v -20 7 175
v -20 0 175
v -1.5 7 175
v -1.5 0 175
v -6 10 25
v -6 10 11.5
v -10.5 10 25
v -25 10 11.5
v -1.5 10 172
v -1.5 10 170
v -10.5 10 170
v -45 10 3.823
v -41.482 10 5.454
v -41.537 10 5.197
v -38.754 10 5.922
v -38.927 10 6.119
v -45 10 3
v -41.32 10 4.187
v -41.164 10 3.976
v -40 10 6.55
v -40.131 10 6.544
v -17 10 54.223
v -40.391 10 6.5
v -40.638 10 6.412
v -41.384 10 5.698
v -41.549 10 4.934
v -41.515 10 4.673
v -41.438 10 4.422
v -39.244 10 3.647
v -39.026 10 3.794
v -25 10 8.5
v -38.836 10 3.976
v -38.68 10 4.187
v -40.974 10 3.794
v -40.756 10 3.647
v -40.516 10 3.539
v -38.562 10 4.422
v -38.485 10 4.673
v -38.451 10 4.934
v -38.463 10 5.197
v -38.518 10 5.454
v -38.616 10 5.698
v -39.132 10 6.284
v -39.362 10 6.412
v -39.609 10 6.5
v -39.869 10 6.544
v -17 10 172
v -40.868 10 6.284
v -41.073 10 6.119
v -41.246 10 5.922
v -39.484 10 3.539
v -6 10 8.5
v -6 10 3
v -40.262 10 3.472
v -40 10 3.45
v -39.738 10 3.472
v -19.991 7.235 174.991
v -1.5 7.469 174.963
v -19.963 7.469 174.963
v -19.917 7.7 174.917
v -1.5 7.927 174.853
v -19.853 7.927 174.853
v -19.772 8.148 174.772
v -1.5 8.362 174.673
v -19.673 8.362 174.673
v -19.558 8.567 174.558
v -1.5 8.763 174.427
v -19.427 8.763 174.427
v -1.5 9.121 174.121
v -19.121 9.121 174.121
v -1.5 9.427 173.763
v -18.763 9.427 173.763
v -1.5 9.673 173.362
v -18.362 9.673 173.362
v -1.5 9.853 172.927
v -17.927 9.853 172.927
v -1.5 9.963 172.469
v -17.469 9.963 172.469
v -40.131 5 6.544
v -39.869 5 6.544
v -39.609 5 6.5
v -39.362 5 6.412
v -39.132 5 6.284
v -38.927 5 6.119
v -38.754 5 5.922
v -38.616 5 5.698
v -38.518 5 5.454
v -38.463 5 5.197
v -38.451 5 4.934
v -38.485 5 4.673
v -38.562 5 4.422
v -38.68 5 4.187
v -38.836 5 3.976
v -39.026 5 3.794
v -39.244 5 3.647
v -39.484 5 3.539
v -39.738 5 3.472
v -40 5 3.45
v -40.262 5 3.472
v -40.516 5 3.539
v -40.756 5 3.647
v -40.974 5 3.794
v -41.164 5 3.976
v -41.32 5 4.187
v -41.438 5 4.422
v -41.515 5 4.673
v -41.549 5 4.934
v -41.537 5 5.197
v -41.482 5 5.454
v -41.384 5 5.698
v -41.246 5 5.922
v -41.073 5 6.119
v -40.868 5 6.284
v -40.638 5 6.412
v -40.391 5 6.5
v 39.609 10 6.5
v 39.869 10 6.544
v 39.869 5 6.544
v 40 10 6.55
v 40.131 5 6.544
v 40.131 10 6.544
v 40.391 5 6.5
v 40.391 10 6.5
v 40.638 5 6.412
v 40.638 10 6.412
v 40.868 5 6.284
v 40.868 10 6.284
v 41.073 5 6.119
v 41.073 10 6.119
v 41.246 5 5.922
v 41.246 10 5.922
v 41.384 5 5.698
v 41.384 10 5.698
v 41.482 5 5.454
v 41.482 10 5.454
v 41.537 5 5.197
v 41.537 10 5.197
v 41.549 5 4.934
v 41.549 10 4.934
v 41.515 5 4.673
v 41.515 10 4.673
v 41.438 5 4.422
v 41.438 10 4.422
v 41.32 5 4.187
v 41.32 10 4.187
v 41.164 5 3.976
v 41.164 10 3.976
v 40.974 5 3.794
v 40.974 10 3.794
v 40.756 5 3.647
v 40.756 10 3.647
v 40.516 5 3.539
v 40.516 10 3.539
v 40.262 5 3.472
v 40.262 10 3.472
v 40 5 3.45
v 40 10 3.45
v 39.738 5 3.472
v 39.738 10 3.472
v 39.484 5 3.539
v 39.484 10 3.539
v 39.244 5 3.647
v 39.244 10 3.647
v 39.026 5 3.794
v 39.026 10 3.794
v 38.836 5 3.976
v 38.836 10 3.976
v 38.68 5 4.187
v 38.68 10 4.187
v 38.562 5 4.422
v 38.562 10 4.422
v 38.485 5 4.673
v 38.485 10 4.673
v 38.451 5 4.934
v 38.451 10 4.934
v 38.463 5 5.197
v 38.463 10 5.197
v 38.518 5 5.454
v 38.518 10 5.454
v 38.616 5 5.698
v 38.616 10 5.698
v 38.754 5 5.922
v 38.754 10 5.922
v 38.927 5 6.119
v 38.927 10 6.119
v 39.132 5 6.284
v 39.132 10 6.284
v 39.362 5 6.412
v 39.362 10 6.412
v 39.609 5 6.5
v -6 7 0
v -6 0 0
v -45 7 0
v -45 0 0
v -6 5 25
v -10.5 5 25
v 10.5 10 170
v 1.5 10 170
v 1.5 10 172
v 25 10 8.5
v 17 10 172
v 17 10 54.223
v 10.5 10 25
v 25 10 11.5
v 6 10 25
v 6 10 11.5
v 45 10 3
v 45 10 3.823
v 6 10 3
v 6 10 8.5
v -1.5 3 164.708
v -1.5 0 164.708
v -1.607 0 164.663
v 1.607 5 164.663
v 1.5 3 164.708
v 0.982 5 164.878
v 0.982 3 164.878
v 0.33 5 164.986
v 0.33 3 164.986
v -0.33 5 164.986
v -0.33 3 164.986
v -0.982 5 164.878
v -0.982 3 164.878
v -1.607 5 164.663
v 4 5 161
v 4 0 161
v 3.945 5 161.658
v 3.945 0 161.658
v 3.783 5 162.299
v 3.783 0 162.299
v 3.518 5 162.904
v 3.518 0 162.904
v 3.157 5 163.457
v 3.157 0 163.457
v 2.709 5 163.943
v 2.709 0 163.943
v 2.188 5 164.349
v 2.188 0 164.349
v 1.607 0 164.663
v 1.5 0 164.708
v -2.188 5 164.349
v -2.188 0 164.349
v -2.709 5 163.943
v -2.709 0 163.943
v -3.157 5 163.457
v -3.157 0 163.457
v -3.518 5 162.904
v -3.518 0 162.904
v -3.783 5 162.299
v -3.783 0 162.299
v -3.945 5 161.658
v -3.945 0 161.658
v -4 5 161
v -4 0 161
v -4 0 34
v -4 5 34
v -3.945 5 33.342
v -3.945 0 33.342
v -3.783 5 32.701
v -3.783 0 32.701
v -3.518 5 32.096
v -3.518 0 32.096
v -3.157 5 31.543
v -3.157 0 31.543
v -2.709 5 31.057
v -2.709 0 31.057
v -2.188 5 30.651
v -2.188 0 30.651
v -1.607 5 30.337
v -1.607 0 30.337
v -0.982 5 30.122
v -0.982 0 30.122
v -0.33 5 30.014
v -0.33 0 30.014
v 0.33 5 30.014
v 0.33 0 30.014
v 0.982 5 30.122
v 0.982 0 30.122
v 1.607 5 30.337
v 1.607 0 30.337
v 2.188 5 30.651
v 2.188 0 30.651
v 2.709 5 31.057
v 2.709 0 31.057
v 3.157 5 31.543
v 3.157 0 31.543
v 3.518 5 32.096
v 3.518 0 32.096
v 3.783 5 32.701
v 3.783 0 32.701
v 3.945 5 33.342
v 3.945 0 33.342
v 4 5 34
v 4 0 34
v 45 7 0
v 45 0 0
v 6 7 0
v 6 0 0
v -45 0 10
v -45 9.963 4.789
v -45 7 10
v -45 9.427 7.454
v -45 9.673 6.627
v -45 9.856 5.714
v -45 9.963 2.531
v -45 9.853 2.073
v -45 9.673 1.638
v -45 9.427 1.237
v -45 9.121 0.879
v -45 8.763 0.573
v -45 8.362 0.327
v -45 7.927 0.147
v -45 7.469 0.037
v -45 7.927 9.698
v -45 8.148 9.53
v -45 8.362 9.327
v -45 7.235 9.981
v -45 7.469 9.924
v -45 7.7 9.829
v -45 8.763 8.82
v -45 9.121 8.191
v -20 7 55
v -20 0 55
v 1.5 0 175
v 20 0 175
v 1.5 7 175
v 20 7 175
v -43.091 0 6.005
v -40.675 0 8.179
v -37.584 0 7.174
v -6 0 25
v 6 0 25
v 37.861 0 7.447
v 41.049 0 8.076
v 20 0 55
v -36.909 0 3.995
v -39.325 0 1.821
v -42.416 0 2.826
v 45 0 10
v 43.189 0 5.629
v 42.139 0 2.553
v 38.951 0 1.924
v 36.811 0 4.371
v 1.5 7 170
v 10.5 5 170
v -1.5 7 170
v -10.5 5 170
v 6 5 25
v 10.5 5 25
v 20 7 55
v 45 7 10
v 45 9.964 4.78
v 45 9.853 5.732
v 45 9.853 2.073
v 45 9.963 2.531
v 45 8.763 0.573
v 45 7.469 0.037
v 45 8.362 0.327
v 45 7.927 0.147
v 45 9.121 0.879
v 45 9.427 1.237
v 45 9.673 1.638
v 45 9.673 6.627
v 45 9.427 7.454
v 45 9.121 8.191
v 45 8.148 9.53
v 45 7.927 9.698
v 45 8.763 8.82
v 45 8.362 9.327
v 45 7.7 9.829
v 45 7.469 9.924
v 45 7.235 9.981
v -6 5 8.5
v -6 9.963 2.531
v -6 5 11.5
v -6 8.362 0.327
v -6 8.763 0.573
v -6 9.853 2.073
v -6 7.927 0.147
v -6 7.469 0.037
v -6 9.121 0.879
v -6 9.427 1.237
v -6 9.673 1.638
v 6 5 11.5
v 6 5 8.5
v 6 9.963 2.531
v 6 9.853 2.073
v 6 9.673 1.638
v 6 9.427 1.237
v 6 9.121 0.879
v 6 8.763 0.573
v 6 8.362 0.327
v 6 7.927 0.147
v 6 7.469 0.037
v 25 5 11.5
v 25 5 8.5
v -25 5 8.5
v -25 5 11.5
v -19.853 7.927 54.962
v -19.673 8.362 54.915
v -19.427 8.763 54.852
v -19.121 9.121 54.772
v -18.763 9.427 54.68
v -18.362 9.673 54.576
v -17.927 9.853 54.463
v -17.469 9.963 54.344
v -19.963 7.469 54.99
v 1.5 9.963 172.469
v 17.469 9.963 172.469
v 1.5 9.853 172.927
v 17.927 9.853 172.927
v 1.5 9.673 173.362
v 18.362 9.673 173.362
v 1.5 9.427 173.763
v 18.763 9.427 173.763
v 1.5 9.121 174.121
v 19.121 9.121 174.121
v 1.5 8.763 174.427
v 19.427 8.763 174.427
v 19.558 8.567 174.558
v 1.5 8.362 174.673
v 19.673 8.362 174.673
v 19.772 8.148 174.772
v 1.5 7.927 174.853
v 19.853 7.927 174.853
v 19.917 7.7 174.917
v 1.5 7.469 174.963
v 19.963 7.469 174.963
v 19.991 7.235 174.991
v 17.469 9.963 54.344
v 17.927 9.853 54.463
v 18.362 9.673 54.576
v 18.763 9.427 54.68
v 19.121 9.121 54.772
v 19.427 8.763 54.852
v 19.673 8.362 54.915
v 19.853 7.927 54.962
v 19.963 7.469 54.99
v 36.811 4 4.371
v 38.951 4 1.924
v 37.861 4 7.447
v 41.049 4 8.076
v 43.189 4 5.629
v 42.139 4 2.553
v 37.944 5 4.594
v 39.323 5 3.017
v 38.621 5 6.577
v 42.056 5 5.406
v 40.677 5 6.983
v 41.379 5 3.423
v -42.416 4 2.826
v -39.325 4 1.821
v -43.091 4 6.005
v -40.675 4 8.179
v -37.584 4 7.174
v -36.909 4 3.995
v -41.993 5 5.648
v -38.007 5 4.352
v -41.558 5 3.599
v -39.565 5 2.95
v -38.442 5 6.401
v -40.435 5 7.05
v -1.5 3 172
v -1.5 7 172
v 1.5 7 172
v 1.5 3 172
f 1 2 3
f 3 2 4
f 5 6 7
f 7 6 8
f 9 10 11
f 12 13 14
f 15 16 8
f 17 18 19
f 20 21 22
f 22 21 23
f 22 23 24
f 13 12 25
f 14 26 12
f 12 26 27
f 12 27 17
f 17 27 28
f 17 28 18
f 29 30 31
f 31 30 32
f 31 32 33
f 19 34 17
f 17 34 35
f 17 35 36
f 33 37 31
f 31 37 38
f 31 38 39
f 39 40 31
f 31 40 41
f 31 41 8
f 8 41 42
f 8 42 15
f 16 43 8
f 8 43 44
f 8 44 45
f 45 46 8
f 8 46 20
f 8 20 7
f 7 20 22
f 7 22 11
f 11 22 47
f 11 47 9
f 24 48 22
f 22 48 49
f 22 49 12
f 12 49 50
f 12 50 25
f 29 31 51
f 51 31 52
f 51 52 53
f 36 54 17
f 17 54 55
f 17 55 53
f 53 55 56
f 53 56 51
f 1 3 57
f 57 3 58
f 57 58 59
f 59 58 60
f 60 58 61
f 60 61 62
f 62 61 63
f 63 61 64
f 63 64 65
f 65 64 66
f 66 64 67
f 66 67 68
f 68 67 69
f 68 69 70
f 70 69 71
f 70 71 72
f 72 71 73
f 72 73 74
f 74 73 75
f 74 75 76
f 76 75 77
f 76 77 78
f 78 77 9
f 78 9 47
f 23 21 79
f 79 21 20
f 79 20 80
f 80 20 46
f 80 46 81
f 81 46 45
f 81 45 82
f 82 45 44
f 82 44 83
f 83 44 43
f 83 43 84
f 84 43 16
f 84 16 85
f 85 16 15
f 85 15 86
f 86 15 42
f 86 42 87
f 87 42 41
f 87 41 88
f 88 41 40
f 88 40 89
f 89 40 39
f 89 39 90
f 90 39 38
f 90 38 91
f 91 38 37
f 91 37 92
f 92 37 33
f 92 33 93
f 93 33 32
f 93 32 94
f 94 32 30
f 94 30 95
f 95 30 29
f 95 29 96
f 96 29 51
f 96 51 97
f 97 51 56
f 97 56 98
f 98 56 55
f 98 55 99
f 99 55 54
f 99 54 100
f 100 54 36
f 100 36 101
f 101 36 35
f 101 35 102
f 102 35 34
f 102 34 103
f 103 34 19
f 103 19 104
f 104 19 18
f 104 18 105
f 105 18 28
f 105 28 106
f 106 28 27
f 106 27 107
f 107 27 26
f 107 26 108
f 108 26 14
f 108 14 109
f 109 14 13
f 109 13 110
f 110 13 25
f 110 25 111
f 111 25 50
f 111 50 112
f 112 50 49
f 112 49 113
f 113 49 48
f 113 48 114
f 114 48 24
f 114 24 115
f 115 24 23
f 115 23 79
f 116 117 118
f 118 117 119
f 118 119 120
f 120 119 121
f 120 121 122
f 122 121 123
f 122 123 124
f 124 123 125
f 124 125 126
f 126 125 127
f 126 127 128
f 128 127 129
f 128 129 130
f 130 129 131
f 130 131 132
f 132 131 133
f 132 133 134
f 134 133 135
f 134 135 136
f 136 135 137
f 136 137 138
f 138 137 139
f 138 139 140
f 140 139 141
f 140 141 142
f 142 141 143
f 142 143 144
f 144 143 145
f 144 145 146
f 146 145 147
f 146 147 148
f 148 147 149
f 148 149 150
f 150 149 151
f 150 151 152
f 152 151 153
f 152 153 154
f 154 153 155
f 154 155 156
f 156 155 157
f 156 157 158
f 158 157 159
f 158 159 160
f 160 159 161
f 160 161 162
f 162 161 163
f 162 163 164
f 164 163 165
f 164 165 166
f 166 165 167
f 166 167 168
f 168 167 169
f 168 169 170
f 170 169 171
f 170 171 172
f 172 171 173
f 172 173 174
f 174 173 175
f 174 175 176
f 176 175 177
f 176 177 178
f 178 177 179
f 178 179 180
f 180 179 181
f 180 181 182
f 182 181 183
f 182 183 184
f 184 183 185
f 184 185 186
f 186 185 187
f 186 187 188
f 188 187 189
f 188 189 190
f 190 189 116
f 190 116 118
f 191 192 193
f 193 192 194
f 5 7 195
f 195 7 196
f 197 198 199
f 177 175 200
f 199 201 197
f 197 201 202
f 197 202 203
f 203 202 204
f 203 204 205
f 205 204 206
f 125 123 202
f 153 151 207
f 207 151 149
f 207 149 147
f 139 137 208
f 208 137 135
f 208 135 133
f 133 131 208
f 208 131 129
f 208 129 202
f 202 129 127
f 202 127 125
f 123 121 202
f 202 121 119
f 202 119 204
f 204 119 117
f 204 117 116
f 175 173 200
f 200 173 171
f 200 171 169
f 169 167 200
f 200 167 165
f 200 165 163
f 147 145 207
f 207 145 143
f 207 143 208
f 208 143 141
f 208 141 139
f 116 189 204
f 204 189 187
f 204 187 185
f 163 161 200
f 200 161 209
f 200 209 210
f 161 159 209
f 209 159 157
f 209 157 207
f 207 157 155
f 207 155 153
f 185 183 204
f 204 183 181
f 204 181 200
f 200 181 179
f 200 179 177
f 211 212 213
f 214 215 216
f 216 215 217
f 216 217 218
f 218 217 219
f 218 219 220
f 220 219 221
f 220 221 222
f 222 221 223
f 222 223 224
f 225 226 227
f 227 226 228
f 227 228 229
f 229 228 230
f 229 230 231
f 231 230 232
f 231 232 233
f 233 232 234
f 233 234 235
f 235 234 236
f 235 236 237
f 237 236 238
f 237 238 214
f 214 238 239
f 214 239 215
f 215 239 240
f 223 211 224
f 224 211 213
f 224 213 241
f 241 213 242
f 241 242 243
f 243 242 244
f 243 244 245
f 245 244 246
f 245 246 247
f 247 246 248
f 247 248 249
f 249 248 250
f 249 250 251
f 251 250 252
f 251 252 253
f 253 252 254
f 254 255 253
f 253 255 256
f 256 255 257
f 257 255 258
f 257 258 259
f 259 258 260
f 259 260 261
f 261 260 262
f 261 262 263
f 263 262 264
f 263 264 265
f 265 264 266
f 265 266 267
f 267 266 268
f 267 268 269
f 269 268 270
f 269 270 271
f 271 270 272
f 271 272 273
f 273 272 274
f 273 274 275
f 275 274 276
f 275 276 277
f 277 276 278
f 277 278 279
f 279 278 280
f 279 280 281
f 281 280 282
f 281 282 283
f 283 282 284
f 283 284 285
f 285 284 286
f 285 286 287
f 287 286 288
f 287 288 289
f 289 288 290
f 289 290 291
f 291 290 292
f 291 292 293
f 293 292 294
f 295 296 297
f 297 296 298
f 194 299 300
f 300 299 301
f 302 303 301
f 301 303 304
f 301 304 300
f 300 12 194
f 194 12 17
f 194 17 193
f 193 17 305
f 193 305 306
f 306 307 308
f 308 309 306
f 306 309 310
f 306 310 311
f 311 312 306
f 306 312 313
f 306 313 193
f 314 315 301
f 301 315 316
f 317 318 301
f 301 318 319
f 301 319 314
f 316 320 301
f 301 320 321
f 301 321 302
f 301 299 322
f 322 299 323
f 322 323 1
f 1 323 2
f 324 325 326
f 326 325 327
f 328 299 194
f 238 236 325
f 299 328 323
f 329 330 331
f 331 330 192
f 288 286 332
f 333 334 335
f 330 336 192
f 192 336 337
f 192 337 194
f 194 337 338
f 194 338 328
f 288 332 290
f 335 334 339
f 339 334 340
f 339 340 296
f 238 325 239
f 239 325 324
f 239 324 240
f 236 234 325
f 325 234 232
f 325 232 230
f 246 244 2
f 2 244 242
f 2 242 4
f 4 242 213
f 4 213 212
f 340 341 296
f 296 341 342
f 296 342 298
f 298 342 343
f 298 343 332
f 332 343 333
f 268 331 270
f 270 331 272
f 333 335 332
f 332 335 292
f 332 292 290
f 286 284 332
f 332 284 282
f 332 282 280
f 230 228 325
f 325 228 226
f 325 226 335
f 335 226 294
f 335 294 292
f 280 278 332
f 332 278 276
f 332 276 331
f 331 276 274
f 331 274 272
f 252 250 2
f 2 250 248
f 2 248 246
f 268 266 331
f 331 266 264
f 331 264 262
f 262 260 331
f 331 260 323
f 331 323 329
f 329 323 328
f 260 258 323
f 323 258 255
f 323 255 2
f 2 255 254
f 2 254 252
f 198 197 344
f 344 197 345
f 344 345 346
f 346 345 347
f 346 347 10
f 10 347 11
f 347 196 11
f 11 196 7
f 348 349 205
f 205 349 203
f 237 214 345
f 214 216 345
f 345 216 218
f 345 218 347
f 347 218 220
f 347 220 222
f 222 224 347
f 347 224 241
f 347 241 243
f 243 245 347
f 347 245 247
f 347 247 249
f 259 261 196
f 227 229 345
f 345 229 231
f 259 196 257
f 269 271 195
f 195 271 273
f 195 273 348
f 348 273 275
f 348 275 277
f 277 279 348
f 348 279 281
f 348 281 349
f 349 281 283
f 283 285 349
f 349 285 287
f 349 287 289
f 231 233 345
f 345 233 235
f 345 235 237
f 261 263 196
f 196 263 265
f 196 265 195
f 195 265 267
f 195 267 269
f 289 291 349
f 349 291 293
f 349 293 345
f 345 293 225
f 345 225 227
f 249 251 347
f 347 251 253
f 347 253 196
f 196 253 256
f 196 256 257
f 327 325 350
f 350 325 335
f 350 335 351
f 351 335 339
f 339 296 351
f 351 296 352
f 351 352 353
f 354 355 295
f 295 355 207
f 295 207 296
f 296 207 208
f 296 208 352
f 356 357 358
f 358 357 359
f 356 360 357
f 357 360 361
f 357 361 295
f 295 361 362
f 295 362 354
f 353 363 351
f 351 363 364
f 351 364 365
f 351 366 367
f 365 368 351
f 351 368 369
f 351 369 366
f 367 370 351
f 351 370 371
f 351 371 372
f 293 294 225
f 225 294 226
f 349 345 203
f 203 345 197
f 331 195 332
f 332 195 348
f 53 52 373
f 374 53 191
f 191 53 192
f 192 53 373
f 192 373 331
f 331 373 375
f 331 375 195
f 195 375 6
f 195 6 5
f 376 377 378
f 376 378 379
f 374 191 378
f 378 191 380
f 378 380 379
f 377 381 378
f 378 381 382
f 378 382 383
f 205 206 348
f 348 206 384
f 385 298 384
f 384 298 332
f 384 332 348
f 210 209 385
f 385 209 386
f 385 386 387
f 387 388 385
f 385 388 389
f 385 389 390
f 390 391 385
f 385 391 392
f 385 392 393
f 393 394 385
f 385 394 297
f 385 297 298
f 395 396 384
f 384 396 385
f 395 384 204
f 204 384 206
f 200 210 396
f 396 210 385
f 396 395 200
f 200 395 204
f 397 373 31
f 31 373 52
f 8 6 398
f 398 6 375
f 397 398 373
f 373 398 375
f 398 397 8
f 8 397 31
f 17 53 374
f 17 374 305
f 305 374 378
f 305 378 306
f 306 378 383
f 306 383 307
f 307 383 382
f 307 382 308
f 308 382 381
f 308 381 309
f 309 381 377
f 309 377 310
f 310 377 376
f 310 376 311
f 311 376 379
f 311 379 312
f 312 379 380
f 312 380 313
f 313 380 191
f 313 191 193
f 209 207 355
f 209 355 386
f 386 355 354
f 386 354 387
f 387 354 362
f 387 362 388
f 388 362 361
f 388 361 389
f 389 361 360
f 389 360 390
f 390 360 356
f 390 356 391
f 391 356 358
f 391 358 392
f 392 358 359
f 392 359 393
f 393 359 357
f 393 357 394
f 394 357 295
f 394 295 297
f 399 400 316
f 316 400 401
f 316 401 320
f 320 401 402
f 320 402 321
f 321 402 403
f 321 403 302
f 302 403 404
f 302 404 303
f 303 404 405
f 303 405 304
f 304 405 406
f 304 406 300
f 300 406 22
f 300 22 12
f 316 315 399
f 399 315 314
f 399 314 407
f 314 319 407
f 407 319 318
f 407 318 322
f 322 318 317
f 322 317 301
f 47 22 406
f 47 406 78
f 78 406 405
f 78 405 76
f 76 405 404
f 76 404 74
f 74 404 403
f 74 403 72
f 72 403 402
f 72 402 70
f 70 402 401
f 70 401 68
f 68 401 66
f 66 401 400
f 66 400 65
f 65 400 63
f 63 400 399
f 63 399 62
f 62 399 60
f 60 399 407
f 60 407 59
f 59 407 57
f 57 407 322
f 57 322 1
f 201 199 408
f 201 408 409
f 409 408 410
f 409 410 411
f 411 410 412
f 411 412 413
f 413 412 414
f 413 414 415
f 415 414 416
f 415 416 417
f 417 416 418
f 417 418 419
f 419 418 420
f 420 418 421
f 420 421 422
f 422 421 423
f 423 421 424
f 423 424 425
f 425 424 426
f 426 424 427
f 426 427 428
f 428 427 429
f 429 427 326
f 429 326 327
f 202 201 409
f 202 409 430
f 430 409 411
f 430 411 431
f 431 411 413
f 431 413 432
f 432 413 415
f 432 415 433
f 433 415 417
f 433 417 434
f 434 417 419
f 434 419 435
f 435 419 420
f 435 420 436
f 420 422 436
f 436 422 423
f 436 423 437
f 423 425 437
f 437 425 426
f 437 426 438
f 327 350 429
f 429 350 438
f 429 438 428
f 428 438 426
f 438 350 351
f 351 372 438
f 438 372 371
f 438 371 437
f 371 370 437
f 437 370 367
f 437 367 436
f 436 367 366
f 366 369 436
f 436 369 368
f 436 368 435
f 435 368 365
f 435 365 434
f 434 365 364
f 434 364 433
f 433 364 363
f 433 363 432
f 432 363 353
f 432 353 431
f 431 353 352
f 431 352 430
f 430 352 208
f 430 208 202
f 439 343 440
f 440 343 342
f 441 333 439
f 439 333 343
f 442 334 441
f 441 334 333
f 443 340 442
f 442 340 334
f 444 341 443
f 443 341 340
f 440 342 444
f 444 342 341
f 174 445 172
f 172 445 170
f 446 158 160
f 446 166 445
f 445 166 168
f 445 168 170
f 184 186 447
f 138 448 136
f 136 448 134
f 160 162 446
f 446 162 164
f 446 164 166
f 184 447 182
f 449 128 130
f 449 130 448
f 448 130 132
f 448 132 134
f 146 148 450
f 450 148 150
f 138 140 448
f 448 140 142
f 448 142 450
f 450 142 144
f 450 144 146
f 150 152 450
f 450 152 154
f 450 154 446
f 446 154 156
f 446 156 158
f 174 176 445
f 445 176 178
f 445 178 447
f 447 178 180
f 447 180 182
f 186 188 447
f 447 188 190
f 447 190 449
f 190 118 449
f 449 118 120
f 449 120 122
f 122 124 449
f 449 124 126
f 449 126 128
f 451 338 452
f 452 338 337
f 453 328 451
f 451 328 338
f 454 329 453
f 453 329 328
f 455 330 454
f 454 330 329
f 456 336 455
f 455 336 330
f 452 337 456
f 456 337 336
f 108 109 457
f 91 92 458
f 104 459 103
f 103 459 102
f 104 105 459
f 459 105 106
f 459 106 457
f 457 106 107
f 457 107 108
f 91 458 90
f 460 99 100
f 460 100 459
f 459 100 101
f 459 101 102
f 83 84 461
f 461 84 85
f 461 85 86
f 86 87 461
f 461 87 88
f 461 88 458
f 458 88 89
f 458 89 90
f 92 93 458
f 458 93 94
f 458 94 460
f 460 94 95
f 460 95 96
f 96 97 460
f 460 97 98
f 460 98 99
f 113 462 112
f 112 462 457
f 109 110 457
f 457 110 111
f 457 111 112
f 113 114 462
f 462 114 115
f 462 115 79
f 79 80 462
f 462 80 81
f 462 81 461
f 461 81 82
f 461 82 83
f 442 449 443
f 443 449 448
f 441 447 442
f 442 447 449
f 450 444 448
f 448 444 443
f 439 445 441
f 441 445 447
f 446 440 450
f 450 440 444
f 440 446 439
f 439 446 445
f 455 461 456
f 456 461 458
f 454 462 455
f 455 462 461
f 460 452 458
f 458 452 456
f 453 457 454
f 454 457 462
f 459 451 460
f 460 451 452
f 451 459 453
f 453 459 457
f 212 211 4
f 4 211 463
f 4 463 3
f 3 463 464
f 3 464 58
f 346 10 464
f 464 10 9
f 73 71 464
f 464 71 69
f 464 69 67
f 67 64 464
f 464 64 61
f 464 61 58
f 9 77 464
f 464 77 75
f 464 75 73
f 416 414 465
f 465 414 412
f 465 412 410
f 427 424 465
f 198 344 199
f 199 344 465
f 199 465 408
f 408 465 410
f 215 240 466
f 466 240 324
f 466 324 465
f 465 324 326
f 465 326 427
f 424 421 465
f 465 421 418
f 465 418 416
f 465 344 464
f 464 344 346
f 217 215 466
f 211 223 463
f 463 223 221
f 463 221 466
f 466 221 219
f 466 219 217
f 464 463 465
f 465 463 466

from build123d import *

# Parameters (mm, degrees)
SKETCH1_R           = 1.55
BOSS_EXTRUDE1_DEPTH = 10
SKETCH2_W           = 10.5
SKETCH2_H           = 145
CUT_EXTRUDE1_DEPTH  = 5
SKETCH3_W           = 12
SKETCH3_H           = 25
CUT_EXTRUDE2_DEPTH  = 181.969610709
SKETCH4_W           = 50
SKETCH4_H           = 3
CUT_EXTRUDE3_DEPTH  = 5
FILLET1_R           = 3
SKETCH6_R           = 1.55
CUT_EXTRUDE4_DEPTH  = 5
CHAMFER2_SIZE       = 1
SKETCH7_W           = 3
SKETCH7_H           = 3
CUT_EXTRUDE5_DEPTH  = 12
SKETCH8_W           = 3
SKETCH8_H           = 3
CUT_EXTRUDE6_DEPTH  = 181.828648173


with BuildPart() as part:
    # Sketch1 → Boss-Extrude1 (new body)
    with BuildSketch(Plane(origin=(0, 0, 0), x_dir=(1, 0, 0), z_dir=(0, 1, 0))):
        with BuildLine():
            Line((0, -30), (0, 0))
            Line((0, 0), (-45, 0))
            Line((-45, 0), (-45, -10))
            Line((-45, -10), (-20, -55))
            Line((-20, -55), (-20, -175))
            Line((-20, -175), (0, -175))
            Line((0, -175), (0, -165))
            ThreePointArc((0, -165), (-2.828427125, -163.828427125), (-4, -161))
            Line((-4, -161), (-4, -34))
            ThreePointArc((-4, -34), (-2.828427125, -31.171572875), (0, -30))
        make_face()
        with Locations(Location((-40, -5, 0), (0, 0, 270))):
            Circle(SKETCH1_R, mode=Mode.SUBTRACT)
    boss_extrude1 = extrude(amount=BOSS_EXTRUDE1_DEPTH)

    # Sketch2 → Cut-Extrude1 (cut)
    with BuildSketch(Plane(origin=(0, 10, 0), x_dir=(1, 0, 0), z_dir=(0, 1, 0))):
        with Locations((-5.25, -97.5)):
            Rectangle(SKETCH2_W, SKETCH2_H)
    cut_extrude1 = extrude(amount=-CUT_EXTRUDE1_DEPTH, mode=Mode.SUBTRACT)

    # Mirror1: Boss-Extrude1, Cut-Extrude1 across plane
    add(boss_extrude1.mirror(Plane(origin=(0, 0, 0), x_dir=(0, 0, 1), z_dir=(1, 0, 0))))
    add(cut_extrude1.mirror(Plane(origin=(0, 0, 0), x_dir=(0, 0, 1), z_dir=(1, 0, 0))), mode=Mode.SUBTRACT)

    # Sketch3 → Cut-Extrude2 (cut, through all)
    with BuildSketch(Plane(origin=(0, 10, 0), x_dir=(1, 0, 0), z_dir=(0, 1, 0))):
        with Locations((0, -12.5)):
            Rectangle(SKETCH3_W, SKETCH3_H)
    extrude(amount=-CUT_EXTRUDE2_DEPTH, mode=Mode.SUBTRACT)

    # Sketch4 → Cut-Extrude3 (cut)
    with BuildSketch(Plane(origin=(0, 10, 0), x_dir=(1, 0, 0), z_dir=(0, 1, 0))):
        with Locations((0, -10)):
            Rectangle(SKETCH4_W, SKETCH4_H)
    extrude(amount=-CUT_EXTRUDE3_DEPTH, mode=Mode.SUBTRACT)

    # Fillet1
    fillet1_edges = [part.edges().sort_by_distance(p)[0] for p in [
        (-25.5, 10, 0),
        (25.5, 10, 0),
        (-32.5, 10, 32.5),
        (-20, 10, 115),
        (0, 10, 175),
        (20, 10, 115),
        (32.5, 10, 32.5),
    ]]
    fillet(fillet1_edges, radius=FILLET1_R)

    # Sketch6 → Cut-Extrude4 (cut)
    # profile 1 of 2: a face of its own
    with BuildSketch(Plane.XZ):
        Polygon((-42.416024464, 2.82621855), (-39.325462274, 1.820770713), (-36.90943781, 3.994552163), (-37.583975536, 7.17378145), (-40.674537726, 8.179229287), (-43.09056219, 6.005447837), align=None)
        with Locations(Location((-40, 5, 0), (0, 0, 270))):
            Circle(SKETCH6_R, mode=Mode.SUBTRACT)
    # profile 2 of 2: a face of its own
    with BuildSketch(Plane.XZ):
        Polygon((36.81146344, 4.370925598), (38.950526133, 1.924109137), (42.139062693, 2.553183539), (43.18853656, 5.629074402), (41.049473867, 8.075890863), (37.860937307, 7.446816461), align=None)
        with Locations(Location((40, 5, 0), (0, 0, 270))):
            Circle(SKETCH6_R, mode=Mode.SUBTRACT)
    extrude(amount=-CUT_EXTRUDE4_DEPTH, mode=Mode.SUBTRACT)

    # Chamfer2
    chamfer2_edges = [part.edges().sort_by_distance(p)[0] for p in [
        (-40.870743369, 5, 2.323494632),
        (-42.753293327, 5, 4.415833194),
        (-41.882549958, 5, 7.092338562),
        (-39.129256631, 5, 7.676505368),
        (-37.246706673, 5, 5.584166806),
        (-38.117450042, 5, 2.907661438),
        (37.880994786, 5, 3.147517367),
        (37.336200373, 5, 5.908871029),
        (39.455205587, 5, 7.761353662),
        (42.119005214, 5, 6.852482633),
        (42.663799627, 5, 4.091128971),
        (40.544794413, 5, 2.238646338),
    ]]
    chamfer(chamfer2_edges, length=CHAMFER2_SIZE)

    # Sketch7 → Cut-Extrude5 (cut)
    with BuildSketch(Plane.XY.offset(175)):
        with Locations((0, 8.5)):
            Rectangle(SKETCH7_W, SKETCH7_H)
        with Locations((0, 1.5)):
            Rectangle(SKETCH7_W, SKETCH7_H)
    extrude(amount=-CUT_EXTRUDE5_DEPTH, mode=Mode.SUBTRACT)

    # Sketch8 → Cut-Extrude6 (cut, through all)
    with BuildSketch(Plane(origin=(0, 7, 0), x_dir=(1, 0, 0), z_dir=(0, 1, 0))):
        with Locations((0, -173.5)):
            Rectangle(SKETCH8_W, SKETCH8_H)
    extrude(amount=-CUT_EXTRUDE6_DEPTH, mode=Mode.SUBTRACT)


solid = part.part
